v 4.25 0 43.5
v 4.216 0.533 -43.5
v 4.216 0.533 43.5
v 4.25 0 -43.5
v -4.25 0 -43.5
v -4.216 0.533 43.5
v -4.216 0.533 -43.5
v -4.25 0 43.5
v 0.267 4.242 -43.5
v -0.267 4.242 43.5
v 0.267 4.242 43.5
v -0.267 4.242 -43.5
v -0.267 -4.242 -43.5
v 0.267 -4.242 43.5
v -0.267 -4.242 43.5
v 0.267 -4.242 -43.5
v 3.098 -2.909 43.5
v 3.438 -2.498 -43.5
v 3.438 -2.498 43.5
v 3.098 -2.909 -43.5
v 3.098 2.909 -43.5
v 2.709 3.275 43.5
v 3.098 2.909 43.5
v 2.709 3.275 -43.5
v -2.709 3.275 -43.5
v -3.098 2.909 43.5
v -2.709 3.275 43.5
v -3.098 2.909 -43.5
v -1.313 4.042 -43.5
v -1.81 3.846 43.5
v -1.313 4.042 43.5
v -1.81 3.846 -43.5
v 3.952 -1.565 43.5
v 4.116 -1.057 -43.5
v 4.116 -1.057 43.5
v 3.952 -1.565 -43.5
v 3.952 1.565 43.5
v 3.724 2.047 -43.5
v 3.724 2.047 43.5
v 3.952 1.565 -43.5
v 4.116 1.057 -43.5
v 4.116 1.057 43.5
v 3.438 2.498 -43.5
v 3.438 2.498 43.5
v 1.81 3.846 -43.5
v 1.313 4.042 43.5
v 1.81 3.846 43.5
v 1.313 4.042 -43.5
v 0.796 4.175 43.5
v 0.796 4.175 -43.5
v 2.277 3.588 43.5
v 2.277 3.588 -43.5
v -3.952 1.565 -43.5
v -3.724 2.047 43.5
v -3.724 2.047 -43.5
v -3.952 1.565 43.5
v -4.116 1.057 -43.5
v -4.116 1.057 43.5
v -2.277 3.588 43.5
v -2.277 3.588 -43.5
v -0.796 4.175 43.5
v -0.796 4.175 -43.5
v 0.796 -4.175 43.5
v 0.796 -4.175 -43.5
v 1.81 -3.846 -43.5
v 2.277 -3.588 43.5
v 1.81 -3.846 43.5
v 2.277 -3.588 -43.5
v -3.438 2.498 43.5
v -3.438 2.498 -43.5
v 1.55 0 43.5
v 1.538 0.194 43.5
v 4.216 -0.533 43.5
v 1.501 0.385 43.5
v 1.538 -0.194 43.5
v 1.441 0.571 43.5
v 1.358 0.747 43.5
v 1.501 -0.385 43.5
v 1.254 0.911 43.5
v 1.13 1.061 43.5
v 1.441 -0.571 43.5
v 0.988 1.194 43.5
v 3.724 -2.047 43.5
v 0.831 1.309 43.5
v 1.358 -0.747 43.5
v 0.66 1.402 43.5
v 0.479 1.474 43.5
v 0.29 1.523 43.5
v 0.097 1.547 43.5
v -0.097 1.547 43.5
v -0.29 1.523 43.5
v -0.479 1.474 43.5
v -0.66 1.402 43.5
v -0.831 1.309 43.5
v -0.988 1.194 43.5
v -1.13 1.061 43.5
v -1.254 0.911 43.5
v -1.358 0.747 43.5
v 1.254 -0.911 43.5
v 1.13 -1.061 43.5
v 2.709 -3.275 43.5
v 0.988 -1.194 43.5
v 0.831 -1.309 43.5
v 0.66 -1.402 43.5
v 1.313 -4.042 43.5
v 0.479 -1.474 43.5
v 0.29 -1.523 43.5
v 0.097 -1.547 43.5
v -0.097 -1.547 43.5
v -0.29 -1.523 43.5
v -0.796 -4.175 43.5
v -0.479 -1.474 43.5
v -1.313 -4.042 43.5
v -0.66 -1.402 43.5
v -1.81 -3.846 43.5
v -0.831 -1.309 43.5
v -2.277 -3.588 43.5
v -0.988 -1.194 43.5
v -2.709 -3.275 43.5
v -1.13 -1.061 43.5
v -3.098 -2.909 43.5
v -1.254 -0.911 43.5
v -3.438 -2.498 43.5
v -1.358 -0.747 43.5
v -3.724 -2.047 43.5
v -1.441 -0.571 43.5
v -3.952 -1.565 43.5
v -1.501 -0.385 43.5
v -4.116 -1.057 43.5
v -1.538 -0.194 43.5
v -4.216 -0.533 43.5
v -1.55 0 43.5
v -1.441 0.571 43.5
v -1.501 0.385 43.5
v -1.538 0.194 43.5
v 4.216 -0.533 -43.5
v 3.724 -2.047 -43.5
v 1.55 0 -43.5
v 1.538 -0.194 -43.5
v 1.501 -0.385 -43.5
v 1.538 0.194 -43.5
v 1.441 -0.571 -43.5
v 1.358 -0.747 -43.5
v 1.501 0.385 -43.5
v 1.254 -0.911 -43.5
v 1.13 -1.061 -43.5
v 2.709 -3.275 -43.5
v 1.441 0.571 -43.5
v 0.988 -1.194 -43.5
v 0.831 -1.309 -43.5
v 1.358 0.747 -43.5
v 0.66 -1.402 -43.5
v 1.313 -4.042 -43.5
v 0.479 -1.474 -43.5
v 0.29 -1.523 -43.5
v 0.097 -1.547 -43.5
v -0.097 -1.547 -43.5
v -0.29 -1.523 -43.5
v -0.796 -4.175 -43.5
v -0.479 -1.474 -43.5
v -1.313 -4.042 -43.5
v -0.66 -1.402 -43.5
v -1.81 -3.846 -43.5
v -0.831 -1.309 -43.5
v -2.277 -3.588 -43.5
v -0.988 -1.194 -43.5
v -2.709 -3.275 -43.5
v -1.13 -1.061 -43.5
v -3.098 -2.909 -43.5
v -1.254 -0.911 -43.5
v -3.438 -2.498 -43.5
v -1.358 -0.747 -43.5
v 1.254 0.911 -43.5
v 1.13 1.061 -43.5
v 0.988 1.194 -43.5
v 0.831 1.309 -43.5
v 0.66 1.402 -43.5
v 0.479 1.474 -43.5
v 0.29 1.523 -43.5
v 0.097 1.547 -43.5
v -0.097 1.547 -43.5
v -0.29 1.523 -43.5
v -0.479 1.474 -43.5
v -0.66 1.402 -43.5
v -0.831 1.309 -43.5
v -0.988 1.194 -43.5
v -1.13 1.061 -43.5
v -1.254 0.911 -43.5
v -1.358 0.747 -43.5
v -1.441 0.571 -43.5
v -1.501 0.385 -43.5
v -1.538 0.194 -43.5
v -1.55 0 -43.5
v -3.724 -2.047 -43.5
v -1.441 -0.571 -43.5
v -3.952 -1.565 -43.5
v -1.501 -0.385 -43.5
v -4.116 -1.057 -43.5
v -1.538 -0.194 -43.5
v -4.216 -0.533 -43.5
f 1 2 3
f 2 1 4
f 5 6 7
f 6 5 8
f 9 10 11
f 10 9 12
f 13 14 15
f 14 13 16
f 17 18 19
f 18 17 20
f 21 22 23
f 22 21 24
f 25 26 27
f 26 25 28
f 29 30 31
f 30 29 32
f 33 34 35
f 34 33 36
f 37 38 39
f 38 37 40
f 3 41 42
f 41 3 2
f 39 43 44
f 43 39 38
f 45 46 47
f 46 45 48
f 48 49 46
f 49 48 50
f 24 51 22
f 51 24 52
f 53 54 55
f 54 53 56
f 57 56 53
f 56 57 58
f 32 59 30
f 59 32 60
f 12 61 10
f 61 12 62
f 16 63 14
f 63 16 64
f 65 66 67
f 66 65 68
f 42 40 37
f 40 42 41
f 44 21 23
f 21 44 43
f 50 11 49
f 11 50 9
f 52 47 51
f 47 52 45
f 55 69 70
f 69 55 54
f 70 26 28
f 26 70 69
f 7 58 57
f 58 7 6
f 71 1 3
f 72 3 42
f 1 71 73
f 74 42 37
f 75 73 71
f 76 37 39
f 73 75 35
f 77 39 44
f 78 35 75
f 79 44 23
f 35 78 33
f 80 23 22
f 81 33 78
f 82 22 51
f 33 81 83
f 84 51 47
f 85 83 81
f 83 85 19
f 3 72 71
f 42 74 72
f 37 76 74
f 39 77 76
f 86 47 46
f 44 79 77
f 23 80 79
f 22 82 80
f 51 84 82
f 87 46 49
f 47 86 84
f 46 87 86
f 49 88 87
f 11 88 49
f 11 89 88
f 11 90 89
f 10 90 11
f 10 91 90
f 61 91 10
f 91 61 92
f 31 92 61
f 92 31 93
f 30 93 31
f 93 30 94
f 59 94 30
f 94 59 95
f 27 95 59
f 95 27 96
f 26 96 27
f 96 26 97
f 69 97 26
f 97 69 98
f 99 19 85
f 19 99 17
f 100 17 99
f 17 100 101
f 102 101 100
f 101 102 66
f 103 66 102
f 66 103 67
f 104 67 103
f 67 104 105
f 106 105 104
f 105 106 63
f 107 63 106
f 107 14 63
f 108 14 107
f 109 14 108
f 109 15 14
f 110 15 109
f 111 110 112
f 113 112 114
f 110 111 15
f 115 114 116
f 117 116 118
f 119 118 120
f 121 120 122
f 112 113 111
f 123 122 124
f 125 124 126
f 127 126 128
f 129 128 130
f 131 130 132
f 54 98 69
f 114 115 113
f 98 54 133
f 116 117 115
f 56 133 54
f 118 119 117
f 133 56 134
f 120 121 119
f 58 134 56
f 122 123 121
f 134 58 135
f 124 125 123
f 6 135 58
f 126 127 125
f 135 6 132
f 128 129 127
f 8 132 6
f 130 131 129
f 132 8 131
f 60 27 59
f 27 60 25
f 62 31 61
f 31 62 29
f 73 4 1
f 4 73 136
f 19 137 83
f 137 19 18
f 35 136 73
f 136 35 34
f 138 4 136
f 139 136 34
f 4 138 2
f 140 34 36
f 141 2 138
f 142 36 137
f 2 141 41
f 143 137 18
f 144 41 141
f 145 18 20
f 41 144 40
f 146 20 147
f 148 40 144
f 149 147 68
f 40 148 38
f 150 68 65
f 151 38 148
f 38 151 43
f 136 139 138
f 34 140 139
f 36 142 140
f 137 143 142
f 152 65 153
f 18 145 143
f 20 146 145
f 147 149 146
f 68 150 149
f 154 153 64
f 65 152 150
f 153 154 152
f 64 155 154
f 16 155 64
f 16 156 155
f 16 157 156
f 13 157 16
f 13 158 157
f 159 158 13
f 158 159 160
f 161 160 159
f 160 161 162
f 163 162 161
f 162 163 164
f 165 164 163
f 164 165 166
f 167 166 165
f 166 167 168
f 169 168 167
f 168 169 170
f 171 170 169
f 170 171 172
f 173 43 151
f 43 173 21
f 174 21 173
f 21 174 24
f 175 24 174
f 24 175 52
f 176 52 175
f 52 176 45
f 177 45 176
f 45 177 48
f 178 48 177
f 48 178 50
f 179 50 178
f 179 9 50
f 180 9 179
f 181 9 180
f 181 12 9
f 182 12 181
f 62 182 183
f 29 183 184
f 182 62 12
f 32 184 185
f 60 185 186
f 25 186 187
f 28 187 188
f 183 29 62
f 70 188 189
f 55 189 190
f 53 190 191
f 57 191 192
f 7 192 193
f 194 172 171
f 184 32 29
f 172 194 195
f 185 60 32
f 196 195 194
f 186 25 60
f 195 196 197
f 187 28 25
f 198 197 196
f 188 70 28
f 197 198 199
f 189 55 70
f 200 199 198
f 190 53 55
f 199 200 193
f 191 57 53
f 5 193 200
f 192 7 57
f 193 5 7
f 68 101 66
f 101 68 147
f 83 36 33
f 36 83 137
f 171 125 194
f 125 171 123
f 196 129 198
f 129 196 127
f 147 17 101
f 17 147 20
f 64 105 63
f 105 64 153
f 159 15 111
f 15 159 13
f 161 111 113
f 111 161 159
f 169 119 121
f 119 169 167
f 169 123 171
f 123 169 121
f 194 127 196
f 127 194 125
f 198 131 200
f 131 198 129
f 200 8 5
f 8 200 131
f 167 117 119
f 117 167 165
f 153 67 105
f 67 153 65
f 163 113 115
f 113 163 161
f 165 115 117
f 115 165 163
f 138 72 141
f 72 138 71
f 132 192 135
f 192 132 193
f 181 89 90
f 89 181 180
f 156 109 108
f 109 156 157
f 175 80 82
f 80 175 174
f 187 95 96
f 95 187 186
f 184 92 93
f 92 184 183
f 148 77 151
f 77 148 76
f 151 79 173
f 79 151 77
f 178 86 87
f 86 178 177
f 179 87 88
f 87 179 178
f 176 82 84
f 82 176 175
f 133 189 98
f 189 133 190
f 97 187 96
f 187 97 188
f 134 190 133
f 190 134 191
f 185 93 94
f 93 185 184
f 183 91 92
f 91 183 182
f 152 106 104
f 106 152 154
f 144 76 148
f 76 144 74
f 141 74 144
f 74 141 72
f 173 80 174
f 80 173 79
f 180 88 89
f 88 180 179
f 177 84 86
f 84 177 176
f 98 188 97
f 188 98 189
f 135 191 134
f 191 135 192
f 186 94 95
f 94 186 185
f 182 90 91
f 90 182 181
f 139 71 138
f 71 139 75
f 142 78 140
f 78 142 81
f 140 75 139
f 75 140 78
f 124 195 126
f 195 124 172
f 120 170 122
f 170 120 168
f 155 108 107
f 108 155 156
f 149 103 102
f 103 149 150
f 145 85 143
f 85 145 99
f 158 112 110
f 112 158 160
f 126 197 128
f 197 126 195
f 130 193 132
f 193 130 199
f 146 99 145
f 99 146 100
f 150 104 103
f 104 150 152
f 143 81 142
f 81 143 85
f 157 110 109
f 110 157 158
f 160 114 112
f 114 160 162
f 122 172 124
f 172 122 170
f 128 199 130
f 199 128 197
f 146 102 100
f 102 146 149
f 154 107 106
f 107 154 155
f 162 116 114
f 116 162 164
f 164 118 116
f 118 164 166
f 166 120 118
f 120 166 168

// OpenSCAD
$fn = 50;


difference() {
	union() {
		translate(v = [0, 0, -43.5000000000]) {
			cylinder(h = 87, r = 4.2500000000);
		}
	}
	union() {
		translate(v = [0, 0, -100.0000000000]) {
			cylinder(h = 200, r = 1.5500000000);
		}
	}
}
